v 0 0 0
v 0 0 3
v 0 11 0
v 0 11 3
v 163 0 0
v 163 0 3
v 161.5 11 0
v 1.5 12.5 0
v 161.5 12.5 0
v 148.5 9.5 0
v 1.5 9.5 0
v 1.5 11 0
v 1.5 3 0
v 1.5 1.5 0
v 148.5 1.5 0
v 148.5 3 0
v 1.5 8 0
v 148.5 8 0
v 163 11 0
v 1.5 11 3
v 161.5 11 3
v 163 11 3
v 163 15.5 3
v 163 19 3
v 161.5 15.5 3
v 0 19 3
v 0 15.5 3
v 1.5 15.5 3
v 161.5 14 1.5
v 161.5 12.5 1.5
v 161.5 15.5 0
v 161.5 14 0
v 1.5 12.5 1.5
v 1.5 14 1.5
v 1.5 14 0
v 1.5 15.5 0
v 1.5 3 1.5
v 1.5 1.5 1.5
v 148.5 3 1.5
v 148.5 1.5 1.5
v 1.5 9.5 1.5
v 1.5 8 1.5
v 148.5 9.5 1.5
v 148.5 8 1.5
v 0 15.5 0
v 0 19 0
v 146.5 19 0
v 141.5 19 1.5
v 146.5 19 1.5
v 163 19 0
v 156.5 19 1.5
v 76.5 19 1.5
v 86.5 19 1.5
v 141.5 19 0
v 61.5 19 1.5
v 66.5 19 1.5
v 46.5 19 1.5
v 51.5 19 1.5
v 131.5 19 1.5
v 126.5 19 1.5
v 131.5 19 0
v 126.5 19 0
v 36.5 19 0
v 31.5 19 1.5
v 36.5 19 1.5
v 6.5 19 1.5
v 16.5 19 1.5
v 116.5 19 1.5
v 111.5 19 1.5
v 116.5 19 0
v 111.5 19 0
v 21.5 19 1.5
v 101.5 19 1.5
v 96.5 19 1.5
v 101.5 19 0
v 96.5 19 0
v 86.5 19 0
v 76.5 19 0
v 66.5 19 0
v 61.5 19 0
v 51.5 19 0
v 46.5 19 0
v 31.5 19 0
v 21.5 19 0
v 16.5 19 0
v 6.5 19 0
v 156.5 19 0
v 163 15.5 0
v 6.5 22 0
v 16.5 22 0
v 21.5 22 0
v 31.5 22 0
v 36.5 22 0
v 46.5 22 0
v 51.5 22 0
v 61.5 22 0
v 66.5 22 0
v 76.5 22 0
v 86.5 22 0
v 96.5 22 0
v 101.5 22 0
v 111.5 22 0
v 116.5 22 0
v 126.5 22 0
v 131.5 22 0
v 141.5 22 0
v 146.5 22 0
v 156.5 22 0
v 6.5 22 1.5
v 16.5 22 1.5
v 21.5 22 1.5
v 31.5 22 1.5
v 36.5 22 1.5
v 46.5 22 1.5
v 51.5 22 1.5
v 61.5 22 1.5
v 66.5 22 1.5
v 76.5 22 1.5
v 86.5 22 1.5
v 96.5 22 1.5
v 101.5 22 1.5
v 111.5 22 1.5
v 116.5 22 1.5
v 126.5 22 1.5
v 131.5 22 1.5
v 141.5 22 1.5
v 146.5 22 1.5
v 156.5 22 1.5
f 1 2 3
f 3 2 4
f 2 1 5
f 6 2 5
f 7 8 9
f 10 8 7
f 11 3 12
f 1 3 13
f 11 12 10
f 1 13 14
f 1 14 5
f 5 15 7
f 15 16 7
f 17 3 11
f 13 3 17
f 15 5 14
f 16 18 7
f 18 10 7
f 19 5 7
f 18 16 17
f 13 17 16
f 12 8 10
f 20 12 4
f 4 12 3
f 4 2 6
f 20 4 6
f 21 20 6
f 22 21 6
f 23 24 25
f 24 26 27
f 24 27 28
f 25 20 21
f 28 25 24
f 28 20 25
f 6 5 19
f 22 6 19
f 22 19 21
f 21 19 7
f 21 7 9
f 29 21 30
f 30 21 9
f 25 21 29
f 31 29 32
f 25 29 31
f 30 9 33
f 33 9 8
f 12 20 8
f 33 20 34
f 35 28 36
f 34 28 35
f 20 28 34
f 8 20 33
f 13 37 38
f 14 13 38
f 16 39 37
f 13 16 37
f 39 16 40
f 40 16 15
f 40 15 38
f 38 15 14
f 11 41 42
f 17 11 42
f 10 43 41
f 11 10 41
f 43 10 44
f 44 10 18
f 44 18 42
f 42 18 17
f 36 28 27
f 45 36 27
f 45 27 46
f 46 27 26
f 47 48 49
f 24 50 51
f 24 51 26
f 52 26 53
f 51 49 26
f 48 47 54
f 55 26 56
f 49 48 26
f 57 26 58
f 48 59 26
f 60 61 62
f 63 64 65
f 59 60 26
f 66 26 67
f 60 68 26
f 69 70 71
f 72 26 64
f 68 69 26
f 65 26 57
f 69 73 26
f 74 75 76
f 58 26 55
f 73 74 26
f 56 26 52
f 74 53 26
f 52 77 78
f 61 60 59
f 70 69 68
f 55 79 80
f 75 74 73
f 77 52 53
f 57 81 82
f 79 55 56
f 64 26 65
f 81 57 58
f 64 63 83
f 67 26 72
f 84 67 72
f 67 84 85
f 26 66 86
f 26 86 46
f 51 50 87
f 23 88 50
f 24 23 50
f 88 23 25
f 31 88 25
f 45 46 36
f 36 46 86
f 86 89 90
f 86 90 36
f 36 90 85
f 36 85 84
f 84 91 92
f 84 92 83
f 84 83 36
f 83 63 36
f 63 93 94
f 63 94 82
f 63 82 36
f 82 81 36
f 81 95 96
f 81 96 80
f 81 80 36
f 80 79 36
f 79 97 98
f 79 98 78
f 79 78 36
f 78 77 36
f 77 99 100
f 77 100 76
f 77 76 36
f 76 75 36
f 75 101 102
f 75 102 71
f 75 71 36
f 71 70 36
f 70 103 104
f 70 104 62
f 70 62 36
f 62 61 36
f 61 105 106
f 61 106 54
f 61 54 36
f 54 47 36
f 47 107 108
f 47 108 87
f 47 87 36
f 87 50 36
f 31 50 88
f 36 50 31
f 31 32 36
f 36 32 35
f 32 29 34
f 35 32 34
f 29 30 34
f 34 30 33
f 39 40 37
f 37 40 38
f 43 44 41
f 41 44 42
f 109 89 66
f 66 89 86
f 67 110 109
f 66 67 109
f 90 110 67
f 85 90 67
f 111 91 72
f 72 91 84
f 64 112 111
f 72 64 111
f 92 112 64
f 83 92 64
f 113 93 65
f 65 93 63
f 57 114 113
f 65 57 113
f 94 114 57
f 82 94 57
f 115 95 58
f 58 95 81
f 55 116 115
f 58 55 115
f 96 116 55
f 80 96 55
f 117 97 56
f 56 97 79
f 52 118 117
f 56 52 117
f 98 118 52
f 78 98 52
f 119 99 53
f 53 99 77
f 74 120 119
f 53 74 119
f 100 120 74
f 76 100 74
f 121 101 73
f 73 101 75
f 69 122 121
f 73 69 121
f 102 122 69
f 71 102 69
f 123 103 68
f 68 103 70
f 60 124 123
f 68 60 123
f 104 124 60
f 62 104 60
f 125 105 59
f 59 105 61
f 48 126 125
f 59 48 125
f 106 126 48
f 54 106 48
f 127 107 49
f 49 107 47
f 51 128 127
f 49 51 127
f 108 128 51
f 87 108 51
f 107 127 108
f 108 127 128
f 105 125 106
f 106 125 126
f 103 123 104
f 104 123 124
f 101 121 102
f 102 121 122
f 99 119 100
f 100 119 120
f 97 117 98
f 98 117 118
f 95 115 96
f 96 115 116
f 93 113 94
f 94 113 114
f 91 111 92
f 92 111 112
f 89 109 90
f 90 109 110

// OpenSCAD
board = 160;
edge = 1.5;

depth = 2 * edge;
width = board + 2 * edge;

groove = 1.5;
faceSpace = 5;
mountSpace = 3;
pcbSpace = 5;

notchSpacing = 5;
notchWidth = 10;
notchHeight = 3;

height =
	edge +
	groove +
	faceSpace +
	groove +
	mountSpace +
	groove +
	pcbSpace +
	notchHeight;

faceTop = edge;
mountTop = faceTop + groove + faceSpace;
pcbTop = mountTop + groove + mountSpace;
baseTop = pcbTop + groove + pcbSpace;

notchCount = 10;
notchGap = board - notchCount * (notchSpacing + notchWidth);
notch1Left = edge + notchSpacing;
notch2Left = notch1Left + notchSpacing + notchWidth;
notch3Left = notch2Left + notchSpacing + notchWidth;
notch4Left = notch3Left + notchSpacing + notchWidth;
notch5Left = notch4Left + notchSpacing + notchWidth;
notch6Left = notch5Left + notchGap + notchWidth;
notch7Left = notch6Left + notchSpacing + notchWidth;
notch8Left = notch7Left + notchSpacing + notchWidth;
notch9Left = notch8Left + notchSpacing + notchWidth;
notch10Left = notch9Left + notchSpacing + notchWidth;

module hole(x, y, z, cx, cy, cz)
{
	translate([x, y, z]) cube([cx, cy, cz]);
}

module grooveHole(y, cx)
{
	hole(edge, y, 0, cx, groove, edge);
}

module notchHole(x, cx)
{
	hole(x, baseTop, 0, cx, notchHeight, edge);
}

module sideNotch(x)
{
	hole(x, pcbTop - edge, 0, edge, 2 * edge + groove, depth);
}

difference()
{
	cube([width, height, depth]);

	grooveHole(faceTop, board - 13);
	grooveHole(mountTop, board - 13);
	grooveHole(pcbTop, board);

	hole(0, baseTop, edge, width, notchHeight, edge);
	notchHole(0, notch1Left);
	notchHole(notch1Left + notchWidth, notchSpacing);
	notchHole(notch2Left + notchWidth, notchSpacing);
	notchHole(notch3Left + notchWidth, notchSpacing);
	notchHole(notch4Left + notchWidth, notchSpacing);
	notchHole(notch5Left + notchWidth, notchGap);
	notchHole(notch6Left + notchWidth, notchSpacing);
	notchHole(notch7Left + notchWidth, notchSpacing);
	notchHole(notch8Left + notchWidth, notchSpacing);
	notchHole(notch9Left + notchWidth, notchSpacing);
	notchHole(notch10Left + notchWidth, notchSpacing + edge);

	sideNotch(0);
	sideNotch(board + edge);
}
